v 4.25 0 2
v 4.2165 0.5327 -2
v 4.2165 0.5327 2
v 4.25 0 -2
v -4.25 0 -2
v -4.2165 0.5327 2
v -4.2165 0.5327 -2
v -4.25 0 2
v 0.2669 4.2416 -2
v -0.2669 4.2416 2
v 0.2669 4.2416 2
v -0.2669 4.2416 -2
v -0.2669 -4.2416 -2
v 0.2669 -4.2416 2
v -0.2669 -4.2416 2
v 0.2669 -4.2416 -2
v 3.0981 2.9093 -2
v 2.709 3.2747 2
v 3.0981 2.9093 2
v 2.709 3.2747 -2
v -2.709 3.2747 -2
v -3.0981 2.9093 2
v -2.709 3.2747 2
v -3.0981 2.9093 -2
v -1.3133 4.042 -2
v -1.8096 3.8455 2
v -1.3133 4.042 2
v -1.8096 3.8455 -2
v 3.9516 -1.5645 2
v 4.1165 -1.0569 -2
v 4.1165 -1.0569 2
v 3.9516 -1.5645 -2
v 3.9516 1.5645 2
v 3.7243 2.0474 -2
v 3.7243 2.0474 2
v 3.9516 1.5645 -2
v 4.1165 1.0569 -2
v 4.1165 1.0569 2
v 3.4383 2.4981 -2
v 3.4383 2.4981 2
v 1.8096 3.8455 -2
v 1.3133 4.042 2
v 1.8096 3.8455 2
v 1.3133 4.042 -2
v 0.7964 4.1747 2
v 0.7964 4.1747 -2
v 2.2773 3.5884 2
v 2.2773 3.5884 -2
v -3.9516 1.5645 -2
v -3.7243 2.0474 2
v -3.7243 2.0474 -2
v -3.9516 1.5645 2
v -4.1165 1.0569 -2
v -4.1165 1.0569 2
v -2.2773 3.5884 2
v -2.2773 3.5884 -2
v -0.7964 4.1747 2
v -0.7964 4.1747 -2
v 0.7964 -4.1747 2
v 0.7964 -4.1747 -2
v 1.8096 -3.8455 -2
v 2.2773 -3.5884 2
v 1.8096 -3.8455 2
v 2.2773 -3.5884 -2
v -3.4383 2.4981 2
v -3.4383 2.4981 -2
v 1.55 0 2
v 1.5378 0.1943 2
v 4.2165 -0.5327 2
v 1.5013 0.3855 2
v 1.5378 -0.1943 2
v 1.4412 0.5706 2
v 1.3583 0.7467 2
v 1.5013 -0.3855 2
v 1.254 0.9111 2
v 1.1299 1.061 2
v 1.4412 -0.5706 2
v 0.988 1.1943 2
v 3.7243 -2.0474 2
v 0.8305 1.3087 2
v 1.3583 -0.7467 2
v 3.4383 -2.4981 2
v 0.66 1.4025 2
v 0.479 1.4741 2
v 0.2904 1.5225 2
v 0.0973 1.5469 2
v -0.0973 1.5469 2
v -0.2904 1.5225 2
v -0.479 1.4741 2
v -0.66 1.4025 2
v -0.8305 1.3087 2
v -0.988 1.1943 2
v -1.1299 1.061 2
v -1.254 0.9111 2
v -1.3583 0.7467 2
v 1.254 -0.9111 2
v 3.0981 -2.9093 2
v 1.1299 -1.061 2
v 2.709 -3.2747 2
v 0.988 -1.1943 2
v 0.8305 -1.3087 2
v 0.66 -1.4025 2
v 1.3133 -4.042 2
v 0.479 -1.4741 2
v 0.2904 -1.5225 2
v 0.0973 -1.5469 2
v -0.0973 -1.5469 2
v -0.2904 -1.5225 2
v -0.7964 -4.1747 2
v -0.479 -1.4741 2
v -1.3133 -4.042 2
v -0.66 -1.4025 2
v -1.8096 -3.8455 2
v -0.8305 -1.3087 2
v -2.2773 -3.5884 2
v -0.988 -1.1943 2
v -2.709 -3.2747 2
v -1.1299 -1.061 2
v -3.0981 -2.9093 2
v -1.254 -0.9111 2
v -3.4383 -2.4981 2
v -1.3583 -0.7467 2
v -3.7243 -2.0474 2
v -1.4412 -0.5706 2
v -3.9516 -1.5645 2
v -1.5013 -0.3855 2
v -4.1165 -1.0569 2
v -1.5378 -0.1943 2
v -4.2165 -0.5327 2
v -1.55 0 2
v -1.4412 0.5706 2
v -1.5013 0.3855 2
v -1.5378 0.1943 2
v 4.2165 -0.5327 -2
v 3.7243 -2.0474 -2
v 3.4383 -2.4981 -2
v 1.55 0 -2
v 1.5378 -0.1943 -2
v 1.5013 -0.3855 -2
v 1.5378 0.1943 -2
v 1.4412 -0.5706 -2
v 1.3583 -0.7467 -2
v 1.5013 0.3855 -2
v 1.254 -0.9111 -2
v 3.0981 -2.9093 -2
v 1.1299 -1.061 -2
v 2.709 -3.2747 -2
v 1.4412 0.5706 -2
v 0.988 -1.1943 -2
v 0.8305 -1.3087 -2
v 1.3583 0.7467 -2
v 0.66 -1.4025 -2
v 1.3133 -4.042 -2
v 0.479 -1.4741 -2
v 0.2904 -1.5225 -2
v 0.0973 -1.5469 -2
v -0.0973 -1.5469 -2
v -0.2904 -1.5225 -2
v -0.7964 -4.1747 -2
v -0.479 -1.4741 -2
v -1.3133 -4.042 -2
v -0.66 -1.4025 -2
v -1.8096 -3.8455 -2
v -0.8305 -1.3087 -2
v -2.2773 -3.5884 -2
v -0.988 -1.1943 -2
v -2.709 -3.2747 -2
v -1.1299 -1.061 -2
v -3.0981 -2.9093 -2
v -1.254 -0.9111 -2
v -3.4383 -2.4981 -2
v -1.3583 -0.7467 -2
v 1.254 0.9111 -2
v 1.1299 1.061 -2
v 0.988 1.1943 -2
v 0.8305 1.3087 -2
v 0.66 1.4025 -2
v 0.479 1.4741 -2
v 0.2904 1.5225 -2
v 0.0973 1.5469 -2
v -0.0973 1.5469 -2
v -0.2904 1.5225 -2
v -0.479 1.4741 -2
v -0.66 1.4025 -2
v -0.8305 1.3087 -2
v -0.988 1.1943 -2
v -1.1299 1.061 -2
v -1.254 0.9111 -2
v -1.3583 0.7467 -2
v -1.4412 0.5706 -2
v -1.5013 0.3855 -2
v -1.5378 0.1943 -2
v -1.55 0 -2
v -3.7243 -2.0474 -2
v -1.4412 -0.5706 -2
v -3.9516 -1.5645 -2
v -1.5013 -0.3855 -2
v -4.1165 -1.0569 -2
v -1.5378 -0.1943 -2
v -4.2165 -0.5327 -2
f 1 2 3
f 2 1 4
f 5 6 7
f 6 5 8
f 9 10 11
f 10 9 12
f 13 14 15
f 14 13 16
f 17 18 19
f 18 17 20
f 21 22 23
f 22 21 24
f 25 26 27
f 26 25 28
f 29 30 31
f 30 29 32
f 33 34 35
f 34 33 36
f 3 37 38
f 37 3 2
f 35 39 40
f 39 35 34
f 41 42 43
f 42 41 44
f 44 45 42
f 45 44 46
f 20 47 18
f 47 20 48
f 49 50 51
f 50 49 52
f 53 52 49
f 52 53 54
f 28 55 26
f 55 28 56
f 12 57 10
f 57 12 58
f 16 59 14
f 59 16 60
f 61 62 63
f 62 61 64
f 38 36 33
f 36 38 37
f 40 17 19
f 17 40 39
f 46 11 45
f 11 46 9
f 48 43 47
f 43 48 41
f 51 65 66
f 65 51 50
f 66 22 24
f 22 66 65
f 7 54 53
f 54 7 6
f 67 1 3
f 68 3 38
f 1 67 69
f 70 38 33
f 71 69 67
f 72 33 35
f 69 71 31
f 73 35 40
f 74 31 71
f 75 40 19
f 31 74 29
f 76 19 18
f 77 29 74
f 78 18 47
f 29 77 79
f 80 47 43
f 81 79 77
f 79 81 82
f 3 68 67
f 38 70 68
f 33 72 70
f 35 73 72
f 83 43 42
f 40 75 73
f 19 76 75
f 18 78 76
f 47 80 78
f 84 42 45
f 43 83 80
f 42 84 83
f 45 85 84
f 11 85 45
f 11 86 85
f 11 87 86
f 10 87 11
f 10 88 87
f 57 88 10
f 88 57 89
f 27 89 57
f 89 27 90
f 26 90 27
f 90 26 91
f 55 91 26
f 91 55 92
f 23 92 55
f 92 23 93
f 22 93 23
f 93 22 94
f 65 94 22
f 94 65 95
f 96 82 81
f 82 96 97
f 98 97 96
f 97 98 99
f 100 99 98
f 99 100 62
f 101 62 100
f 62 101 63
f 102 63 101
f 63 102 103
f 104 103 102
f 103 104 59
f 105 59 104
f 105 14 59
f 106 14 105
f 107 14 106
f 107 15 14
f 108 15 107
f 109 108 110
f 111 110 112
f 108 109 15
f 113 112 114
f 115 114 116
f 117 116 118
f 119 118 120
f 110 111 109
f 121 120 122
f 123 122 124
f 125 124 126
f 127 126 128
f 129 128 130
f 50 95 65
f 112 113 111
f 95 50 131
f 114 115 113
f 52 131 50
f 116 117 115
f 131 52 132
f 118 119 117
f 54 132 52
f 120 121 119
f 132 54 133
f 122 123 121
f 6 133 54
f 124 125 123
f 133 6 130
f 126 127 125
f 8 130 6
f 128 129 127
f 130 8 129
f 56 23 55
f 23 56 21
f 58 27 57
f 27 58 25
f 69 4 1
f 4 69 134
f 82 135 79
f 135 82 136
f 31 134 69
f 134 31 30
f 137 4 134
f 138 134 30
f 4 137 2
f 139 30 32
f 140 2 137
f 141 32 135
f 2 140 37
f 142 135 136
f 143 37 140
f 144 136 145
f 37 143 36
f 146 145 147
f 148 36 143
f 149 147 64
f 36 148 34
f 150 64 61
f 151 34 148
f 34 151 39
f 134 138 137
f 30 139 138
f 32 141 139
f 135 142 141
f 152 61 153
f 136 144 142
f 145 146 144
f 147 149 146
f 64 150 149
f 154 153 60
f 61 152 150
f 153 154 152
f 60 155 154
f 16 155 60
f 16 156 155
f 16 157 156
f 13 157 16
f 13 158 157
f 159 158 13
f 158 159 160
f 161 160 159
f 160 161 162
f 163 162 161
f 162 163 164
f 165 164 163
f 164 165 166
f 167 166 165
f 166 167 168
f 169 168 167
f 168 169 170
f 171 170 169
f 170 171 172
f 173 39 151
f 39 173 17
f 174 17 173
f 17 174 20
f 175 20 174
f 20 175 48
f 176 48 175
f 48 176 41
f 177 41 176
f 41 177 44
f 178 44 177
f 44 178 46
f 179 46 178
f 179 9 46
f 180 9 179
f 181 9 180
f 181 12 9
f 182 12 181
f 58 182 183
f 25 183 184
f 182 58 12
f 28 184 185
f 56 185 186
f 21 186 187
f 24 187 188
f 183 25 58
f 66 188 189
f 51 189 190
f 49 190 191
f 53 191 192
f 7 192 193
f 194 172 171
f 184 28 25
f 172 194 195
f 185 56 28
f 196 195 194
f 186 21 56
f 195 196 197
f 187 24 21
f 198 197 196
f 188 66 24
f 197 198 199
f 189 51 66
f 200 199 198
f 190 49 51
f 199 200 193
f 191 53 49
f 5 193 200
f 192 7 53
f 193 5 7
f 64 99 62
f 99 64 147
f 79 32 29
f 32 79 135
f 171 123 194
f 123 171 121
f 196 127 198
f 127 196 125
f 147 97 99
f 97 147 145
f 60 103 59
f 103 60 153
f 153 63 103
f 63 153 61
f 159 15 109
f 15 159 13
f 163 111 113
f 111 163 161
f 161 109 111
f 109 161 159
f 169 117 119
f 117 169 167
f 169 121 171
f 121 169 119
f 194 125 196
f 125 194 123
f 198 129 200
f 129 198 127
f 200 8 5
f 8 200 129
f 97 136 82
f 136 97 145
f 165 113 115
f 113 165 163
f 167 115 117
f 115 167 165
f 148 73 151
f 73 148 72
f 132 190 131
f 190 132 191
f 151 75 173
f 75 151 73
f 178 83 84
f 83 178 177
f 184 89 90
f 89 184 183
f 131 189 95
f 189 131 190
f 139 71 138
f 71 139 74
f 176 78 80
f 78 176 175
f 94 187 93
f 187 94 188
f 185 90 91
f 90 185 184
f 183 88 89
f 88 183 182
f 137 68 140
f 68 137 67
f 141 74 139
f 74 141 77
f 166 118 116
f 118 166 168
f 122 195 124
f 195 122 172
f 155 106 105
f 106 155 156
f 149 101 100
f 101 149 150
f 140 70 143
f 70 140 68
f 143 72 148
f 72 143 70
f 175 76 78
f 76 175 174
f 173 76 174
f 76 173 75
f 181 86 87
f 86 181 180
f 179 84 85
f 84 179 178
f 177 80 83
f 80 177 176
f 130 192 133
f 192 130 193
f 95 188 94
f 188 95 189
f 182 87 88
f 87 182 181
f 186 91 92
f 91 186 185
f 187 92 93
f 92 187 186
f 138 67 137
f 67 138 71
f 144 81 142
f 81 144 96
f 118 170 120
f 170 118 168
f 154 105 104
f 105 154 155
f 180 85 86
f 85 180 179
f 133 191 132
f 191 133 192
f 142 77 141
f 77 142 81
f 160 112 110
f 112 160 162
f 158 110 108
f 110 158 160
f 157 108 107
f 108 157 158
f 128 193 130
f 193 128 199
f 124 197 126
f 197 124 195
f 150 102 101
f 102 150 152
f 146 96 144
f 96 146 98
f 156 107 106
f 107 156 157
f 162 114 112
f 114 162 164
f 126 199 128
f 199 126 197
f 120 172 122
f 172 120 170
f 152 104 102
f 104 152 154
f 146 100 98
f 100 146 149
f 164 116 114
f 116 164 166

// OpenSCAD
$fn = 50;


difference() {
	union() {
		translate(v = [0, 0, -2.0000000000]) {
			cylinder(h = 4, r = 4.2500000000);
		}
	}
	union() {
		translate(v = [0, 0, -100.0000000000]) {
			cylinder(h = 200, r = 1.5500000000);
		}
	}
}
